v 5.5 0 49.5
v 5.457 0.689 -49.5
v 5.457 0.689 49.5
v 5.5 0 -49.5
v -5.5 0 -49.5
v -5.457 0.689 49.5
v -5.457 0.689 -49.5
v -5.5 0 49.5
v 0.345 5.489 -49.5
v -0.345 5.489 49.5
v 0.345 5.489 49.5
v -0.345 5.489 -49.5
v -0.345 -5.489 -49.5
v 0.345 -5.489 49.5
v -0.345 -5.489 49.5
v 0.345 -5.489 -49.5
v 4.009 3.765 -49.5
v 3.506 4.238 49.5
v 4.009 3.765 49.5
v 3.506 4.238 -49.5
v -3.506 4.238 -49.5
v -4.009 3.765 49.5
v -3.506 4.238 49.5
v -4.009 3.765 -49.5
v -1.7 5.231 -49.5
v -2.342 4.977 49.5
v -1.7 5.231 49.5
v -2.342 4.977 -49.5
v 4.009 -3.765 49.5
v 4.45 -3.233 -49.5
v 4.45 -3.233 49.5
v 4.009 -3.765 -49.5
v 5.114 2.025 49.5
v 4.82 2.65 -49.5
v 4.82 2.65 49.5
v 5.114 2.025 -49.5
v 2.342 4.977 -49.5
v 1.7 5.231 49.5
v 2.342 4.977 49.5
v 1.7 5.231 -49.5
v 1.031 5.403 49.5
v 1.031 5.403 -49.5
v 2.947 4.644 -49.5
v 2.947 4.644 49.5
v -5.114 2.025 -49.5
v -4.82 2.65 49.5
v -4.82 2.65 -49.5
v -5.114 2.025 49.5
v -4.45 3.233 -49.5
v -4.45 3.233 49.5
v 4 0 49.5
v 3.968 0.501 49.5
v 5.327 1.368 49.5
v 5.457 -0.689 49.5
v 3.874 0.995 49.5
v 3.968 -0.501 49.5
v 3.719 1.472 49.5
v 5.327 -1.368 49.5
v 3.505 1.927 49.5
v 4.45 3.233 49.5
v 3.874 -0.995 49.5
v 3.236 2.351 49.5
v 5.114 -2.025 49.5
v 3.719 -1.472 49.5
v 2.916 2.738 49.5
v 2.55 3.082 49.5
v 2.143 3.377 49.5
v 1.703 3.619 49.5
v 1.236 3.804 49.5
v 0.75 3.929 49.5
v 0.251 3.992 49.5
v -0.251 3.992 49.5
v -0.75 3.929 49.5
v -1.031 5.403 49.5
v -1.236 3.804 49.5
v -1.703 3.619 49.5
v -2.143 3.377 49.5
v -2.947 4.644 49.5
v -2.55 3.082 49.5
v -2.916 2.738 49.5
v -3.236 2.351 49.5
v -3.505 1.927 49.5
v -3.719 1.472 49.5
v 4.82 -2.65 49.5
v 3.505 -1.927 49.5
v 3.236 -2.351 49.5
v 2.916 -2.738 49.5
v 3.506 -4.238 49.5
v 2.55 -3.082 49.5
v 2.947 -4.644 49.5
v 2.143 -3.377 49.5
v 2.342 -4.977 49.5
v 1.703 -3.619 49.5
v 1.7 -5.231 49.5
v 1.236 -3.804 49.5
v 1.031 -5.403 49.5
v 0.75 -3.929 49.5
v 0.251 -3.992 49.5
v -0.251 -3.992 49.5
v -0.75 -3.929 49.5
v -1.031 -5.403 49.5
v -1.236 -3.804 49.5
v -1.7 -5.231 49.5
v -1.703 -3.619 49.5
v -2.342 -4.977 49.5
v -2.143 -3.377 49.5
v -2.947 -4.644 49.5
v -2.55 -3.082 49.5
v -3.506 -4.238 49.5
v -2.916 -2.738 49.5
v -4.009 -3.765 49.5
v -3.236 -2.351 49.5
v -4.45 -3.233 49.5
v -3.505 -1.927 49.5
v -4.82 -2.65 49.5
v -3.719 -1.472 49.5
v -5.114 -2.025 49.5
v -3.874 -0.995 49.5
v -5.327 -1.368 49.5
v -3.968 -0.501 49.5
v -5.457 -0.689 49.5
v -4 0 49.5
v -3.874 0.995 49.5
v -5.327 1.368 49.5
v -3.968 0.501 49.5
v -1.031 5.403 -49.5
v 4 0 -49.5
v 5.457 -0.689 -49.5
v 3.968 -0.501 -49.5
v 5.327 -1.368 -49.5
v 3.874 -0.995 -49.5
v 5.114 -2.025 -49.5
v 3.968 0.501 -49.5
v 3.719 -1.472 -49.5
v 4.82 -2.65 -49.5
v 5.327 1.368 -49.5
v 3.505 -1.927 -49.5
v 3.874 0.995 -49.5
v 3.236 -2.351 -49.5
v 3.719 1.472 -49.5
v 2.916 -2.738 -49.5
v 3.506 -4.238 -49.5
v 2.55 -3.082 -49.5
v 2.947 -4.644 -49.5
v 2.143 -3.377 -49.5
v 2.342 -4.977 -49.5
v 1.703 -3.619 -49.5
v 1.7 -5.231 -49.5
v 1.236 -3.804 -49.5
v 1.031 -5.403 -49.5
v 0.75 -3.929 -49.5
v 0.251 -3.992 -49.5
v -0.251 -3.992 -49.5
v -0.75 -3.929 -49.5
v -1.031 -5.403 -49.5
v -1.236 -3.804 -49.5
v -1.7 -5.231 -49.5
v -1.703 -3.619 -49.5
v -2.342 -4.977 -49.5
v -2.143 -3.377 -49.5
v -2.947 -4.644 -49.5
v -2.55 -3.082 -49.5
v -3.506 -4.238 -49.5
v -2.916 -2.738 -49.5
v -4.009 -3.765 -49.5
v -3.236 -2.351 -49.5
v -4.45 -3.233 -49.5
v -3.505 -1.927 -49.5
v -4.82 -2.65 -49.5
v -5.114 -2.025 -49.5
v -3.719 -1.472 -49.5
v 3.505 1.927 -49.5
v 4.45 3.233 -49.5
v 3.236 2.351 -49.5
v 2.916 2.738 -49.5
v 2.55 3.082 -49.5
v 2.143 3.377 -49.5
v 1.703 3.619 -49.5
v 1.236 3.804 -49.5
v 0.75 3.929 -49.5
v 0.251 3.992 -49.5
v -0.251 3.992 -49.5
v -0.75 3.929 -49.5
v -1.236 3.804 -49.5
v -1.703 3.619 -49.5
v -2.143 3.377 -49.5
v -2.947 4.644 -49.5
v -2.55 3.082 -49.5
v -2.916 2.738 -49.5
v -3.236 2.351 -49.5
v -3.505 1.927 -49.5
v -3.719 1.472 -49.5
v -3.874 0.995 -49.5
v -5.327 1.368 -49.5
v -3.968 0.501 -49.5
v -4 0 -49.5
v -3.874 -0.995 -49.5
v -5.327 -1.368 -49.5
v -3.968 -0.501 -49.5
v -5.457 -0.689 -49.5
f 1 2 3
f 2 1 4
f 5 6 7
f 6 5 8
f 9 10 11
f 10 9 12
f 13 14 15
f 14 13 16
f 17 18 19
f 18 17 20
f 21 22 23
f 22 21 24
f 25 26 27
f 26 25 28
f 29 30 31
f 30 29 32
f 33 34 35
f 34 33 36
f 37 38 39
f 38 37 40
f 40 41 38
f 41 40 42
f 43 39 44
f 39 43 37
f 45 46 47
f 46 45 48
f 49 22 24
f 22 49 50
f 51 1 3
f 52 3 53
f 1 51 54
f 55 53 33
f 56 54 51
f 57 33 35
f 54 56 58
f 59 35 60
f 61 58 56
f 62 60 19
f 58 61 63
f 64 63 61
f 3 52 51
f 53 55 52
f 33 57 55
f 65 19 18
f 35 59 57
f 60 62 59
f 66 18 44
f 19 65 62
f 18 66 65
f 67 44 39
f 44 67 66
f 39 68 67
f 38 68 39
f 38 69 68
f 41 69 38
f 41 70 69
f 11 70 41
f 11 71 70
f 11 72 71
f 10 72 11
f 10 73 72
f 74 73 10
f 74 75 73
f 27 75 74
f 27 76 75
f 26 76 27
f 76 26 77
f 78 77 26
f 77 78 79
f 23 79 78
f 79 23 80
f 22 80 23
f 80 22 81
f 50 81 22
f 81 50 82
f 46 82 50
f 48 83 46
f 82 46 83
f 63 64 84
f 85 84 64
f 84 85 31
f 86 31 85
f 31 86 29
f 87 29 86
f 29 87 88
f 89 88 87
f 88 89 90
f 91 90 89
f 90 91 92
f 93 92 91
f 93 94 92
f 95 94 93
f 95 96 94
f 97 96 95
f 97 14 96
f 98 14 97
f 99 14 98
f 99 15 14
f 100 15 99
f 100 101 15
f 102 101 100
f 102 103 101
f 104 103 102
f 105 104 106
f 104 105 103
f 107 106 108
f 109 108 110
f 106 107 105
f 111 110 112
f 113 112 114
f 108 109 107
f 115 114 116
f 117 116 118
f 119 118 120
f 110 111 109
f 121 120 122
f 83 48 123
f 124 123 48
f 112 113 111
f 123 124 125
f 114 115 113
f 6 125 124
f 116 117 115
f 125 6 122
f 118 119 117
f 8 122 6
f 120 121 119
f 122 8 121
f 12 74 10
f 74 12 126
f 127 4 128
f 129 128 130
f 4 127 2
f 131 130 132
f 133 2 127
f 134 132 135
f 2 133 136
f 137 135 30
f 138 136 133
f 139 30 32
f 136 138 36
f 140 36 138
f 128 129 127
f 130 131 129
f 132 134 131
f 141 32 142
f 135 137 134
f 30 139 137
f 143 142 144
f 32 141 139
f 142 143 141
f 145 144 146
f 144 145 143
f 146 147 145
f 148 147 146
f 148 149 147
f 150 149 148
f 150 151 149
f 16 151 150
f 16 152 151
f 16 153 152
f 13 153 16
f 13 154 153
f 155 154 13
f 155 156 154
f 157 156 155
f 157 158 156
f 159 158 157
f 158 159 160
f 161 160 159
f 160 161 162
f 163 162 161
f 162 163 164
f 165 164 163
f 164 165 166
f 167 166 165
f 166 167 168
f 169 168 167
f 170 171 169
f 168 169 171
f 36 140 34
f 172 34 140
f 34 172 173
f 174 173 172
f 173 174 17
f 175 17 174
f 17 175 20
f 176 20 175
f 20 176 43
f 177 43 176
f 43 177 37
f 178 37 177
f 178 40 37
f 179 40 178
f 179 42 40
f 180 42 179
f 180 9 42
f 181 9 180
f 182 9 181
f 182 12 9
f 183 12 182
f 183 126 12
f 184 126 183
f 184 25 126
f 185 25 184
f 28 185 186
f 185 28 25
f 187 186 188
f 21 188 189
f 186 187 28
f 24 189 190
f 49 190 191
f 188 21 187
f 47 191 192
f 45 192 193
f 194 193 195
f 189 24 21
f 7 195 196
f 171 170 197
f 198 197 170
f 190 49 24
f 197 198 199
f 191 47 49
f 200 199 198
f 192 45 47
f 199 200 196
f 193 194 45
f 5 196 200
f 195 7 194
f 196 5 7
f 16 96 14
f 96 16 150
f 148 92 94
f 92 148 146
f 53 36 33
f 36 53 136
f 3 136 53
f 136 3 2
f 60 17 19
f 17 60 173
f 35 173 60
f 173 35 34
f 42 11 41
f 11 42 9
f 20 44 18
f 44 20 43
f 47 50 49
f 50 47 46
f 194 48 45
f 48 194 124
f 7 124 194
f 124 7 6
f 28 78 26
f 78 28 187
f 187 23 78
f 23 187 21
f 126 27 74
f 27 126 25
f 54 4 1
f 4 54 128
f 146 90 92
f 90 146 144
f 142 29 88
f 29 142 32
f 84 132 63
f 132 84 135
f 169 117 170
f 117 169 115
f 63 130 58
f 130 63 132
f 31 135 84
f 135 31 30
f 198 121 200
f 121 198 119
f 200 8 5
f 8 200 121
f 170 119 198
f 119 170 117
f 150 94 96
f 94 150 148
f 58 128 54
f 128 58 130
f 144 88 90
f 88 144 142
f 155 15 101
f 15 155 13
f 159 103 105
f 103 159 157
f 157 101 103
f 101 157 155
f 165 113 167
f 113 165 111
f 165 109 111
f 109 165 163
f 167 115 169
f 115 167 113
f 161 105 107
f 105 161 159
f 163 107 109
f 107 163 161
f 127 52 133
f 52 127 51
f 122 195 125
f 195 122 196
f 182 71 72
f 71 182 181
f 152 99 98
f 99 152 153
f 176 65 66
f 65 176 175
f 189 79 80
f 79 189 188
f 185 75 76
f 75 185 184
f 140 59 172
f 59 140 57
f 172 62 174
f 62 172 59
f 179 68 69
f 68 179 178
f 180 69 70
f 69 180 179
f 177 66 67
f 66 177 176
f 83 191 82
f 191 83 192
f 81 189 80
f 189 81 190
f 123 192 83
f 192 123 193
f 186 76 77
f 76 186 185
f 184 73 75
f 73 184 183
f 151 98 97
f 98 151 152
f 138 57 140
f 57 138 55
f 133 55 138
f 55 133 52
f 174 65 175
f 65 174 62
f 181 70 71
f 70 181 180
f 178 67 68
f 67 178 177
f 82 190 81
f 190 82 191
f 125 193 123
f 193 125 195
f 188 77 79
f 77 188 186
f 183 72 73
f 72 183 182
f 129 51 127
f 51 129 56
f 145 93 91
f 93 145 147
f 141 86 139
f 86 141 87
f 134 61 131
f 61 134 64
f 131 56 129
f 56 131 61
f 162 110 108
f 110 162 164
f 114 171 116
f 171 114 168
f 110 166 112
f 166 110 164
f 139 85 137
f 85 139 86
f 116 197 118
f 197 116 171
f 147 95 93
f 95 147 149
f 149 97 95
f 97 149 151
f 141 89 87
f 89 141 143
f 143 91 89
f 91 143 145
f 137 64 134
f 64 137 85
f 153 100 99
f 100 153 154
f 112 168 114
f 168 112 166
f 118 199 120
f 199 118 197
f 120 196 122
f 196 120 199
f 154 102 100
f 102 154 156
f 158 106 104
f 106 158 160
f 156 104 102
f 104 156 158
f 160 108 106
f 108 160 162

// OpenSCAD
$fn = 50;


difference() {
	union() {
		translate(v = [0, 0, -49.5000000000]) {
			cylinder(h = 99, r = 5.5000000000);
		}
	}
	union() {
		translate(v = [0, 0, -100.0000000000]) {
			cylinder(h = 200, r = 4);
		}
	}
}
